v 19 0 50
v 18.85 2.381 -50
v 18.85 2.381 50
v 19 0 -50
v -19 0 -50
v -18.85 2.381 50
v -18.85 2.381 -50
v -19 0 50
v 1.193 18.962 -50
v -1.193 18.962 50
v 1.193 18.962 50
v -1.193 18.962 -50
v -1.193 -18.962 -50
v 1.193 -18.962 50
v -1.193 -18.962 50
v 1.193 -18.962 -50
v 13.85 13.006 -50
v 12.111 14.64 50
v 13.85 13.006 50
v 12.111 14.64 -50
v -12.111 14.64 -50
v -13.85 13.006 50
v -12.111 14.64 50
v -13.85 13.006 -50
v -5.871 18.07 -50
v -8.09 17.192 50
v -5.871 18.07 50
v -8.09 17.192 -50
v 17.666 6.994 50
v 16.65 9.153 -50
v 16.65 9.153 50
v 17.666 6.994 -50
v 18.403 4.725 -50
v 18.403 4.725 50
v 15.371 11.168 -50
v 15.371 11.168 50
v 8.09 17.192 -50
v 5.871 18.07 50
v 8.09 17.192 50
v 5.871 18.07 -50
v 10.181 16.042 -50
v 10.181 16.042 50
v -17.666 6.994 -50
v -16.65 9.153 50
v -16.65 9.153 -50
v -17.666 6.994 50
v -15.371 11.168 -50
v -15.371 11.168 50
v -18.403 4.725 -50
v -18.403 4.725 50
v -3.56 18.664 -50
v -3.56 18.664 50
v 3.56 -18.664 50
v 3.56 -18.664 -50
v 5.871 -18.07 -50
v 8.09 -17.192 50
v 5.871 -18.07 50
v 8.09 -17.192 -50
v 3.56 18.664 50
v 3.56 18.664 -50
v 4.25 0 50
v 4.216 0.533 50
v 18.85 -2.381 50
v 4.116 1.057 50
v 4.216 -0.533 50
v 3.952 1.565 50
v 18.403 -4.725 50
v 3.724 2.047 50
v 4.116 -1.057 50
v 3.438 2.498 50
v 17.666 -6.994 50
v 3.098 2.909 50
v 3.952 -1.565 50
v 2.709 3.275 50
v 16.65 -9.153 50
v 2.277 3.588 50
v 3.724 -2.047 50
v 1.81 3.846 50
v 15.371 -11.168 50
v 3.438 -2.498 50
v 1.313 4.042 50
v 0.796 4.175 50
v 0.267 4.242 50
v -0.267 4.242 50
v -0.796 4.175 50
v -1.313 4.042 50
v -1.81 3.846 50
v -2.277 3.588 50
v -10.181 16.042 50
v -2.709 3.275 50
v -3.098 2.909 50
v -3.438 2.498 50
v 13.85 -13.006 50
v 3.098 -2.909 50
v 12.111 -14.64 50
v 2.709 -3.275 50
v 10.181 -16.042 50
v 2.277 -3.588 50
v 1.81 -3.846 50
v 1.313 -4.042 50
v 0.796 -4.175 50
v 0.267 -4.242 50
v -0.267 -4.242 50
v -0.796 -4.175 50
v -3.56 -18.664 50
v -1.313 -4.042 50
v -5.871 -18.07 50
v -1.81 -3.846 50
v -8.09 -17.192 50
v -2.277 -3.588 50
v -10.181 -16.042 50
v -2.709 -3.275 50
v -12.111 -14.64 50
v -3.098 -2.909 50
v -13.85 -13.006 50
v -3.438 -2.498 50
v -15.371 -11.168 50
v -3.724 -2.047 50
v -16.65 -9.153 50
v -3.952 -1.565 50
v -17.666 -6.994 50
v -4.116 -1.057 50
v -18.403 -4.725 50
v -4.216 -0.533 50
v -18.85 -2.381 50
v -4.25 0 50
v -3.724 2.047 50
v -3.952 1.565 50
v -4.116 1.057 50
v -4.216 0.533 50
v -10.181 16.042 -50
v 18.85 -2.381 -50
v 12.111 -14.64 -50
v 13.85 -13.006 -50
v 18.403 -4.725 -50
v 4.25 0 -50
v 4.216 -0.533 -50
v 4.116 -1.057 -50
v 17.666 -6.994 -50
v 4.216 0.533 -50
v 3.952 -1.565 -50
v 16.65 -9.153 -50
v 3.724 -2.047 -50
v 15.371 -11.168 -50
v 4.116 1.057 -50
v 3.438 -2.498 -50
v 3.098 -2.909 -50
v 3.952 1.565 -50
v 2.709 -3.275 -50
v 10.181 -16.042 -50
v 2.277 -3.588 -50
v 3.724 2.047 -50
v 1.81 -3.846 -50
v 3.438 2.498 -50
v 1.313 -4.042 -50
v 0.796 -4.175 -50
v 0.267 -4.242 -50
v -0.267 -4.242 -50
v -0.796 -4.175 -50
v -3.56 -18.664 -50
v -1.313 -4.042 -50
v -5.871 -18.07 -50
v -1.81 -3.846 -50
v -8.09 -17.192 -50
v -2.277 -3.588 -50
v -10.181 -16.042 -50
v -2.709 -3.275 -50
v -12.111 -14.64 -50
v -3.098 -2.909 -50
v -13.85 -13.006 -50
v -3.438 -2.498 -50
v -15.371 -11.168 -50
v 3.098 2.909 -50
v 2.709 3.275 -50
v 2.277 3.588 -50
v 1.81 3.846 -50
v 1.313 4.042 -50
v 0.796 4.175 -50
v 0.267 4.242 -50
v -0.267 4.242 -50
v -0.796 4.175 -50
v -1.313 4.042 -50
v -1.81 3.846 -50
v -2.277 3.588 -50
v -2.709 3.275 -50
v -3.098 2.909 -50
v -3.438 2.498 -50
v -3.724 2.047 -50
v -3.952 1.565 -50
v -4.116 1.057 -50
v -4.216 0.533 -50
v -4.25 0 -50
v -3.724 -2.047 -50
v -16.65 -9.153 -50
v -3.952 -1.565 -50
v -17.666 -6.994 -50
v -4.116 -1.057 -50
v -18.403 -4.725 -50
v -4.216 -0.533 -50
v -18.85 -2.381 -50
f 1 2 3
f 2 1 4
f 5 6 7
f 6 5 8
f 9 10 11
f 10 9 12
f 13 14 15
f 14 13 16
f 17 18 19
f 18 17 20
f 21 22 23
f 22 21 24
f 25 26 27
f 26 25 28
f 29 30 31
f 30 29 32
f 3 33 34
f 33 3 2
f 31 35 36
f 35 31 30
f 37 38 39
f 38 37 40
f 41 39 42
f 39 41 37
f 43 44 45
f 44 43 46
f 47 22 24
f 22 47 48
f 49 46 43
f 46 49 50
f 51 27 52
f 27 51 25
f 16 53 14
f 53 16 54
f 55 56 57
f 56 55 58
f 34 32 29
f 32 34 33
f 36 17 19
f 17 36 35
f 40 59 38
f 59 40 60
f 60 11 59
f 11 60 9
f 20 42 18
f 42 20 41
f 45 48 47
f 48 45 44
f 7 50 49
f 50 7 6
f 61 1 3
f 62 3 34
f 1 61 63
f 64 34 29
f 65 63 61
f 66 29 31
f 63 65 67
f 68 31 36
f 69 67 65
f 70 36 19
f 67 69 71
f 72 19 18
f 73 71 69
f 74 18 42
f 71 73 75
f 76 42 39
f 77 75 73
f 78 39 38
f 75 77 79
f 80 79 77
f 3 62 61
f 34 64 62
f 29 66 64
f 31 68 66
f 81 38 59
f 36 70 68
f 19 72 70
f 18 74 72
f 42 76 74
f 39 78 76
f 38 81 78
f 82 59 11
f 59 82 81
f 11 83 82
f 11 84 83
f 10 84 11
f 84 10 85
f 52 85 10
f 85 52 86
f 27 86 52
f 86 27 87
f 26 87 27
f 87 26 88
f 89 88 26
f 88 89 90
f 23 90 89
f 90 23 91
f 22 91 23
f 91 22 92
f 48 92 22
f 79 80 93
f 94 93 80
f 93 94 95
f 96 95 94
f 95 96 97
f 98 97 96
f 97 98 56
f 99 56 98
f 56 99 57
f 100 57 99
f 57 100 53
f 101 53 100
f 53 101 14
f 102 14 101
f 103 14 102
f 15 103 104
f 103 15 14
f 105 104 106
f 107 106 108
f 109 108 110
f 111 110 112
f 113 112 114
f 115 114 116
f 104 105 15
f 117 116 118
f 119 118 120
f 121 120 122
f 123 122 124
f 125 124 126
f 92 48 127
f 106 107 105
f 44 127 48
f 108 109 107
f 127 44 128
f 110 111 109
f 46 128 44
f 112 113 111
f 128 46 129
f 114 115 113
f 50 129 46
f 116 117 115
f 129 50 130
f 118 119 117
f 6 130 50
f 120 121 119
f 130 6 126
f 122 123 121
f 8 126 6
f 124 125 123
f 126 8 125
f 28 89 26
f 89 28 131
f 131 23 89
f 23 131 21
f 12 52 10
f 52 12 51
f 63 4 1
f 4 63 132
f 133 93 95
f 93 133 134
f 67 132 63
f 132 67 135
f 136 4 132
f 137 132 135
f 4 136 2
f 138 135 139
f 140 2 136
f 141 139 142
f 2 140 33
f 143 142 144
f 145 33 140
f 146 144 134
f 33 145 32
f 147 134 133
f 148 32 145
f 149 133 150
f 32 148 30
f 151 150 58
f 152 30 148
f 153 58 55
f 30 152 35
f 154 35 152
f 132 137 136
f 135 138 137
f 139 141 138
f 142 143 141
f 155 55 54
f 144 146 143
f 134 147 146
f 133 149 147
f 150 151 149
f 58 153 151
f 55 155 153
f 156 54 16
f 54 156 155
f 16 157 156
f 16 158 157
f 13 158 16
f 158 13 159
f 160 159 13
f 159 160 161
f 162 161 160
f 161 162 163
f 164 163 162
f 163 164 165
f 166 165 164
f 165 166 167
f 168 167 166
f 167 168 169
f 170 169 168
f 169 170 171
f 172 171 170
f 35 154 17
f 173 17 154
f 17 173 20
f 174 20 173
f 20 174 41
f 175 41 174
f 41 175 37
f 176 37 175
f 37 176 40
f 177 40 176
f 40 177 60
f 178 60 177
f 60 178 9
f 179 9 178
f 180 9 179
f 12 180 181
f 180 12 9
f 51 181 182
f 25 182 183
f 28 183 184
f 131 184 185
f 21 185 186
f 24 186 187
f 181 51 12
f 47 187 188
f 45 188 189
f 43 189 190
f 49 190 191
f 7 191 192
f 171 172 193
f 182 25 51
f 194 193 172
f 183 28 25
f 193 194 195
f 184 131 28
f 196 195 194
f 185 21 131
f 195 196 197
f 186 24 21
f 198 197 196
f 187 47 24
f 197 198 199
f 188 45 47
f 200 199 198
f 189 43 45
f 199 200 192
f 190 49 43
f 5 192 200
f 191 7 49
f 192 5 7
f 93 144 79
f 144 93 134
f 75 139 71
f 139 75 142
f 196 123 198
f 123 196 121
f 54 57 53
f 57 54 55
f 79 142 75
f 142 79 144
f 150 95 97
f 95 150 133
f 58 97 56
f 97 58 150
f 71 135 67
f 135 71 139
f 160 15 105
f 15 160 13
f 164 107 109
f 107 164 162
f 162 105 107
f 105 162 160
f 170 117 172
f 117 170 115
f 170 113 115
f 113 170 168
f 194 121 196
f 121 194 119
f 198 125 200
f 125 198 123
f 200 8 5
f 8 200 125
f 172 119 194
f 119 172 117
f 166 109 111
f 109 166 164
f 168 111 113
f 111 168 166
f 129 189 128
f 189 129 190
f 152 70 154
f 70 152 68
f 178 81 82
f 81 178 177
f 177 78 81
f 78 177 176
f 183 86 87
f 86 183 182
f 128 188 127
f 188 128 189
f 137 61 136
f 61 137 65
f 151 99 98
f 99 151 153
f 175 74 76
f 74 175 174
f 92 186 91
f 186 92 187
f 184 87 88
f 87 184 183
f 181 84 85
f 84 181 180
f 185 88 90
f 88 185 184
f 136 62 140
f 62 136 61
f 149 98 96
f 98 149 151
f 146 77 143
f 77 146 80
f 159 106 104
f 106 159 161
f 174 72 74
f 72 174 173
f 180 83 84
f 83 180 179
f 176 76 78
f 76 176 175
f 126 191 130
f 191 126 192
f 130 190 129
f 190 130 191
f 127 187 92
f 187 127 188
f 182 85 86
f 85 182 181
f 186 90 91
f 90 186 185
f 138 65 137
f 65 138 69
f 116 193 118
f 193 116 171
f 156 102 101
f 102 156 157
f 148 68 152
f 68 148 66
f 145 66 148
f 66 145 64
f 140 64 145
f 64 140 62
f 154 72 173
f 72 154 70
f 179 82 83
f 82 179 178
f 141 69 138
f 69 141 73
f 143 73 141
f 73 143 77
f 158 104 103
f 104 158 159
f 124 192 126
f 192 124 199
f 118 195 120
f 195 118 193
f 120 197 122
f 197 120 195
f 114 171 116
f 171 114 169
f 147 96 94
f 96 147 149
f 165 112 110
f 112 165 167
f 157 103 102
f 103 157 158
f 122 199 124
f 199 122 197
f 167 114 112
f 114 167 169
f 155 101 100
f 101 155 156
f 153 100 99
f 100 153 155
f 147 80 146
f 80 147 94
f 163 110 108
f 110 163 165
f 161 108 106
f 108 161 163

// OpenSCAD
$fn = 50;


difference() {
	union() {
		translate(v = [0, 0, -50.0000000000]) {
			cylinder(h = 100, r = 19.0000000000);
		}
	}
	union() {
		translate(v = [0, 0, -100.0000000000]) {
			cylinder(h = 200, r = 4.2500000000);
		}
	}
}
